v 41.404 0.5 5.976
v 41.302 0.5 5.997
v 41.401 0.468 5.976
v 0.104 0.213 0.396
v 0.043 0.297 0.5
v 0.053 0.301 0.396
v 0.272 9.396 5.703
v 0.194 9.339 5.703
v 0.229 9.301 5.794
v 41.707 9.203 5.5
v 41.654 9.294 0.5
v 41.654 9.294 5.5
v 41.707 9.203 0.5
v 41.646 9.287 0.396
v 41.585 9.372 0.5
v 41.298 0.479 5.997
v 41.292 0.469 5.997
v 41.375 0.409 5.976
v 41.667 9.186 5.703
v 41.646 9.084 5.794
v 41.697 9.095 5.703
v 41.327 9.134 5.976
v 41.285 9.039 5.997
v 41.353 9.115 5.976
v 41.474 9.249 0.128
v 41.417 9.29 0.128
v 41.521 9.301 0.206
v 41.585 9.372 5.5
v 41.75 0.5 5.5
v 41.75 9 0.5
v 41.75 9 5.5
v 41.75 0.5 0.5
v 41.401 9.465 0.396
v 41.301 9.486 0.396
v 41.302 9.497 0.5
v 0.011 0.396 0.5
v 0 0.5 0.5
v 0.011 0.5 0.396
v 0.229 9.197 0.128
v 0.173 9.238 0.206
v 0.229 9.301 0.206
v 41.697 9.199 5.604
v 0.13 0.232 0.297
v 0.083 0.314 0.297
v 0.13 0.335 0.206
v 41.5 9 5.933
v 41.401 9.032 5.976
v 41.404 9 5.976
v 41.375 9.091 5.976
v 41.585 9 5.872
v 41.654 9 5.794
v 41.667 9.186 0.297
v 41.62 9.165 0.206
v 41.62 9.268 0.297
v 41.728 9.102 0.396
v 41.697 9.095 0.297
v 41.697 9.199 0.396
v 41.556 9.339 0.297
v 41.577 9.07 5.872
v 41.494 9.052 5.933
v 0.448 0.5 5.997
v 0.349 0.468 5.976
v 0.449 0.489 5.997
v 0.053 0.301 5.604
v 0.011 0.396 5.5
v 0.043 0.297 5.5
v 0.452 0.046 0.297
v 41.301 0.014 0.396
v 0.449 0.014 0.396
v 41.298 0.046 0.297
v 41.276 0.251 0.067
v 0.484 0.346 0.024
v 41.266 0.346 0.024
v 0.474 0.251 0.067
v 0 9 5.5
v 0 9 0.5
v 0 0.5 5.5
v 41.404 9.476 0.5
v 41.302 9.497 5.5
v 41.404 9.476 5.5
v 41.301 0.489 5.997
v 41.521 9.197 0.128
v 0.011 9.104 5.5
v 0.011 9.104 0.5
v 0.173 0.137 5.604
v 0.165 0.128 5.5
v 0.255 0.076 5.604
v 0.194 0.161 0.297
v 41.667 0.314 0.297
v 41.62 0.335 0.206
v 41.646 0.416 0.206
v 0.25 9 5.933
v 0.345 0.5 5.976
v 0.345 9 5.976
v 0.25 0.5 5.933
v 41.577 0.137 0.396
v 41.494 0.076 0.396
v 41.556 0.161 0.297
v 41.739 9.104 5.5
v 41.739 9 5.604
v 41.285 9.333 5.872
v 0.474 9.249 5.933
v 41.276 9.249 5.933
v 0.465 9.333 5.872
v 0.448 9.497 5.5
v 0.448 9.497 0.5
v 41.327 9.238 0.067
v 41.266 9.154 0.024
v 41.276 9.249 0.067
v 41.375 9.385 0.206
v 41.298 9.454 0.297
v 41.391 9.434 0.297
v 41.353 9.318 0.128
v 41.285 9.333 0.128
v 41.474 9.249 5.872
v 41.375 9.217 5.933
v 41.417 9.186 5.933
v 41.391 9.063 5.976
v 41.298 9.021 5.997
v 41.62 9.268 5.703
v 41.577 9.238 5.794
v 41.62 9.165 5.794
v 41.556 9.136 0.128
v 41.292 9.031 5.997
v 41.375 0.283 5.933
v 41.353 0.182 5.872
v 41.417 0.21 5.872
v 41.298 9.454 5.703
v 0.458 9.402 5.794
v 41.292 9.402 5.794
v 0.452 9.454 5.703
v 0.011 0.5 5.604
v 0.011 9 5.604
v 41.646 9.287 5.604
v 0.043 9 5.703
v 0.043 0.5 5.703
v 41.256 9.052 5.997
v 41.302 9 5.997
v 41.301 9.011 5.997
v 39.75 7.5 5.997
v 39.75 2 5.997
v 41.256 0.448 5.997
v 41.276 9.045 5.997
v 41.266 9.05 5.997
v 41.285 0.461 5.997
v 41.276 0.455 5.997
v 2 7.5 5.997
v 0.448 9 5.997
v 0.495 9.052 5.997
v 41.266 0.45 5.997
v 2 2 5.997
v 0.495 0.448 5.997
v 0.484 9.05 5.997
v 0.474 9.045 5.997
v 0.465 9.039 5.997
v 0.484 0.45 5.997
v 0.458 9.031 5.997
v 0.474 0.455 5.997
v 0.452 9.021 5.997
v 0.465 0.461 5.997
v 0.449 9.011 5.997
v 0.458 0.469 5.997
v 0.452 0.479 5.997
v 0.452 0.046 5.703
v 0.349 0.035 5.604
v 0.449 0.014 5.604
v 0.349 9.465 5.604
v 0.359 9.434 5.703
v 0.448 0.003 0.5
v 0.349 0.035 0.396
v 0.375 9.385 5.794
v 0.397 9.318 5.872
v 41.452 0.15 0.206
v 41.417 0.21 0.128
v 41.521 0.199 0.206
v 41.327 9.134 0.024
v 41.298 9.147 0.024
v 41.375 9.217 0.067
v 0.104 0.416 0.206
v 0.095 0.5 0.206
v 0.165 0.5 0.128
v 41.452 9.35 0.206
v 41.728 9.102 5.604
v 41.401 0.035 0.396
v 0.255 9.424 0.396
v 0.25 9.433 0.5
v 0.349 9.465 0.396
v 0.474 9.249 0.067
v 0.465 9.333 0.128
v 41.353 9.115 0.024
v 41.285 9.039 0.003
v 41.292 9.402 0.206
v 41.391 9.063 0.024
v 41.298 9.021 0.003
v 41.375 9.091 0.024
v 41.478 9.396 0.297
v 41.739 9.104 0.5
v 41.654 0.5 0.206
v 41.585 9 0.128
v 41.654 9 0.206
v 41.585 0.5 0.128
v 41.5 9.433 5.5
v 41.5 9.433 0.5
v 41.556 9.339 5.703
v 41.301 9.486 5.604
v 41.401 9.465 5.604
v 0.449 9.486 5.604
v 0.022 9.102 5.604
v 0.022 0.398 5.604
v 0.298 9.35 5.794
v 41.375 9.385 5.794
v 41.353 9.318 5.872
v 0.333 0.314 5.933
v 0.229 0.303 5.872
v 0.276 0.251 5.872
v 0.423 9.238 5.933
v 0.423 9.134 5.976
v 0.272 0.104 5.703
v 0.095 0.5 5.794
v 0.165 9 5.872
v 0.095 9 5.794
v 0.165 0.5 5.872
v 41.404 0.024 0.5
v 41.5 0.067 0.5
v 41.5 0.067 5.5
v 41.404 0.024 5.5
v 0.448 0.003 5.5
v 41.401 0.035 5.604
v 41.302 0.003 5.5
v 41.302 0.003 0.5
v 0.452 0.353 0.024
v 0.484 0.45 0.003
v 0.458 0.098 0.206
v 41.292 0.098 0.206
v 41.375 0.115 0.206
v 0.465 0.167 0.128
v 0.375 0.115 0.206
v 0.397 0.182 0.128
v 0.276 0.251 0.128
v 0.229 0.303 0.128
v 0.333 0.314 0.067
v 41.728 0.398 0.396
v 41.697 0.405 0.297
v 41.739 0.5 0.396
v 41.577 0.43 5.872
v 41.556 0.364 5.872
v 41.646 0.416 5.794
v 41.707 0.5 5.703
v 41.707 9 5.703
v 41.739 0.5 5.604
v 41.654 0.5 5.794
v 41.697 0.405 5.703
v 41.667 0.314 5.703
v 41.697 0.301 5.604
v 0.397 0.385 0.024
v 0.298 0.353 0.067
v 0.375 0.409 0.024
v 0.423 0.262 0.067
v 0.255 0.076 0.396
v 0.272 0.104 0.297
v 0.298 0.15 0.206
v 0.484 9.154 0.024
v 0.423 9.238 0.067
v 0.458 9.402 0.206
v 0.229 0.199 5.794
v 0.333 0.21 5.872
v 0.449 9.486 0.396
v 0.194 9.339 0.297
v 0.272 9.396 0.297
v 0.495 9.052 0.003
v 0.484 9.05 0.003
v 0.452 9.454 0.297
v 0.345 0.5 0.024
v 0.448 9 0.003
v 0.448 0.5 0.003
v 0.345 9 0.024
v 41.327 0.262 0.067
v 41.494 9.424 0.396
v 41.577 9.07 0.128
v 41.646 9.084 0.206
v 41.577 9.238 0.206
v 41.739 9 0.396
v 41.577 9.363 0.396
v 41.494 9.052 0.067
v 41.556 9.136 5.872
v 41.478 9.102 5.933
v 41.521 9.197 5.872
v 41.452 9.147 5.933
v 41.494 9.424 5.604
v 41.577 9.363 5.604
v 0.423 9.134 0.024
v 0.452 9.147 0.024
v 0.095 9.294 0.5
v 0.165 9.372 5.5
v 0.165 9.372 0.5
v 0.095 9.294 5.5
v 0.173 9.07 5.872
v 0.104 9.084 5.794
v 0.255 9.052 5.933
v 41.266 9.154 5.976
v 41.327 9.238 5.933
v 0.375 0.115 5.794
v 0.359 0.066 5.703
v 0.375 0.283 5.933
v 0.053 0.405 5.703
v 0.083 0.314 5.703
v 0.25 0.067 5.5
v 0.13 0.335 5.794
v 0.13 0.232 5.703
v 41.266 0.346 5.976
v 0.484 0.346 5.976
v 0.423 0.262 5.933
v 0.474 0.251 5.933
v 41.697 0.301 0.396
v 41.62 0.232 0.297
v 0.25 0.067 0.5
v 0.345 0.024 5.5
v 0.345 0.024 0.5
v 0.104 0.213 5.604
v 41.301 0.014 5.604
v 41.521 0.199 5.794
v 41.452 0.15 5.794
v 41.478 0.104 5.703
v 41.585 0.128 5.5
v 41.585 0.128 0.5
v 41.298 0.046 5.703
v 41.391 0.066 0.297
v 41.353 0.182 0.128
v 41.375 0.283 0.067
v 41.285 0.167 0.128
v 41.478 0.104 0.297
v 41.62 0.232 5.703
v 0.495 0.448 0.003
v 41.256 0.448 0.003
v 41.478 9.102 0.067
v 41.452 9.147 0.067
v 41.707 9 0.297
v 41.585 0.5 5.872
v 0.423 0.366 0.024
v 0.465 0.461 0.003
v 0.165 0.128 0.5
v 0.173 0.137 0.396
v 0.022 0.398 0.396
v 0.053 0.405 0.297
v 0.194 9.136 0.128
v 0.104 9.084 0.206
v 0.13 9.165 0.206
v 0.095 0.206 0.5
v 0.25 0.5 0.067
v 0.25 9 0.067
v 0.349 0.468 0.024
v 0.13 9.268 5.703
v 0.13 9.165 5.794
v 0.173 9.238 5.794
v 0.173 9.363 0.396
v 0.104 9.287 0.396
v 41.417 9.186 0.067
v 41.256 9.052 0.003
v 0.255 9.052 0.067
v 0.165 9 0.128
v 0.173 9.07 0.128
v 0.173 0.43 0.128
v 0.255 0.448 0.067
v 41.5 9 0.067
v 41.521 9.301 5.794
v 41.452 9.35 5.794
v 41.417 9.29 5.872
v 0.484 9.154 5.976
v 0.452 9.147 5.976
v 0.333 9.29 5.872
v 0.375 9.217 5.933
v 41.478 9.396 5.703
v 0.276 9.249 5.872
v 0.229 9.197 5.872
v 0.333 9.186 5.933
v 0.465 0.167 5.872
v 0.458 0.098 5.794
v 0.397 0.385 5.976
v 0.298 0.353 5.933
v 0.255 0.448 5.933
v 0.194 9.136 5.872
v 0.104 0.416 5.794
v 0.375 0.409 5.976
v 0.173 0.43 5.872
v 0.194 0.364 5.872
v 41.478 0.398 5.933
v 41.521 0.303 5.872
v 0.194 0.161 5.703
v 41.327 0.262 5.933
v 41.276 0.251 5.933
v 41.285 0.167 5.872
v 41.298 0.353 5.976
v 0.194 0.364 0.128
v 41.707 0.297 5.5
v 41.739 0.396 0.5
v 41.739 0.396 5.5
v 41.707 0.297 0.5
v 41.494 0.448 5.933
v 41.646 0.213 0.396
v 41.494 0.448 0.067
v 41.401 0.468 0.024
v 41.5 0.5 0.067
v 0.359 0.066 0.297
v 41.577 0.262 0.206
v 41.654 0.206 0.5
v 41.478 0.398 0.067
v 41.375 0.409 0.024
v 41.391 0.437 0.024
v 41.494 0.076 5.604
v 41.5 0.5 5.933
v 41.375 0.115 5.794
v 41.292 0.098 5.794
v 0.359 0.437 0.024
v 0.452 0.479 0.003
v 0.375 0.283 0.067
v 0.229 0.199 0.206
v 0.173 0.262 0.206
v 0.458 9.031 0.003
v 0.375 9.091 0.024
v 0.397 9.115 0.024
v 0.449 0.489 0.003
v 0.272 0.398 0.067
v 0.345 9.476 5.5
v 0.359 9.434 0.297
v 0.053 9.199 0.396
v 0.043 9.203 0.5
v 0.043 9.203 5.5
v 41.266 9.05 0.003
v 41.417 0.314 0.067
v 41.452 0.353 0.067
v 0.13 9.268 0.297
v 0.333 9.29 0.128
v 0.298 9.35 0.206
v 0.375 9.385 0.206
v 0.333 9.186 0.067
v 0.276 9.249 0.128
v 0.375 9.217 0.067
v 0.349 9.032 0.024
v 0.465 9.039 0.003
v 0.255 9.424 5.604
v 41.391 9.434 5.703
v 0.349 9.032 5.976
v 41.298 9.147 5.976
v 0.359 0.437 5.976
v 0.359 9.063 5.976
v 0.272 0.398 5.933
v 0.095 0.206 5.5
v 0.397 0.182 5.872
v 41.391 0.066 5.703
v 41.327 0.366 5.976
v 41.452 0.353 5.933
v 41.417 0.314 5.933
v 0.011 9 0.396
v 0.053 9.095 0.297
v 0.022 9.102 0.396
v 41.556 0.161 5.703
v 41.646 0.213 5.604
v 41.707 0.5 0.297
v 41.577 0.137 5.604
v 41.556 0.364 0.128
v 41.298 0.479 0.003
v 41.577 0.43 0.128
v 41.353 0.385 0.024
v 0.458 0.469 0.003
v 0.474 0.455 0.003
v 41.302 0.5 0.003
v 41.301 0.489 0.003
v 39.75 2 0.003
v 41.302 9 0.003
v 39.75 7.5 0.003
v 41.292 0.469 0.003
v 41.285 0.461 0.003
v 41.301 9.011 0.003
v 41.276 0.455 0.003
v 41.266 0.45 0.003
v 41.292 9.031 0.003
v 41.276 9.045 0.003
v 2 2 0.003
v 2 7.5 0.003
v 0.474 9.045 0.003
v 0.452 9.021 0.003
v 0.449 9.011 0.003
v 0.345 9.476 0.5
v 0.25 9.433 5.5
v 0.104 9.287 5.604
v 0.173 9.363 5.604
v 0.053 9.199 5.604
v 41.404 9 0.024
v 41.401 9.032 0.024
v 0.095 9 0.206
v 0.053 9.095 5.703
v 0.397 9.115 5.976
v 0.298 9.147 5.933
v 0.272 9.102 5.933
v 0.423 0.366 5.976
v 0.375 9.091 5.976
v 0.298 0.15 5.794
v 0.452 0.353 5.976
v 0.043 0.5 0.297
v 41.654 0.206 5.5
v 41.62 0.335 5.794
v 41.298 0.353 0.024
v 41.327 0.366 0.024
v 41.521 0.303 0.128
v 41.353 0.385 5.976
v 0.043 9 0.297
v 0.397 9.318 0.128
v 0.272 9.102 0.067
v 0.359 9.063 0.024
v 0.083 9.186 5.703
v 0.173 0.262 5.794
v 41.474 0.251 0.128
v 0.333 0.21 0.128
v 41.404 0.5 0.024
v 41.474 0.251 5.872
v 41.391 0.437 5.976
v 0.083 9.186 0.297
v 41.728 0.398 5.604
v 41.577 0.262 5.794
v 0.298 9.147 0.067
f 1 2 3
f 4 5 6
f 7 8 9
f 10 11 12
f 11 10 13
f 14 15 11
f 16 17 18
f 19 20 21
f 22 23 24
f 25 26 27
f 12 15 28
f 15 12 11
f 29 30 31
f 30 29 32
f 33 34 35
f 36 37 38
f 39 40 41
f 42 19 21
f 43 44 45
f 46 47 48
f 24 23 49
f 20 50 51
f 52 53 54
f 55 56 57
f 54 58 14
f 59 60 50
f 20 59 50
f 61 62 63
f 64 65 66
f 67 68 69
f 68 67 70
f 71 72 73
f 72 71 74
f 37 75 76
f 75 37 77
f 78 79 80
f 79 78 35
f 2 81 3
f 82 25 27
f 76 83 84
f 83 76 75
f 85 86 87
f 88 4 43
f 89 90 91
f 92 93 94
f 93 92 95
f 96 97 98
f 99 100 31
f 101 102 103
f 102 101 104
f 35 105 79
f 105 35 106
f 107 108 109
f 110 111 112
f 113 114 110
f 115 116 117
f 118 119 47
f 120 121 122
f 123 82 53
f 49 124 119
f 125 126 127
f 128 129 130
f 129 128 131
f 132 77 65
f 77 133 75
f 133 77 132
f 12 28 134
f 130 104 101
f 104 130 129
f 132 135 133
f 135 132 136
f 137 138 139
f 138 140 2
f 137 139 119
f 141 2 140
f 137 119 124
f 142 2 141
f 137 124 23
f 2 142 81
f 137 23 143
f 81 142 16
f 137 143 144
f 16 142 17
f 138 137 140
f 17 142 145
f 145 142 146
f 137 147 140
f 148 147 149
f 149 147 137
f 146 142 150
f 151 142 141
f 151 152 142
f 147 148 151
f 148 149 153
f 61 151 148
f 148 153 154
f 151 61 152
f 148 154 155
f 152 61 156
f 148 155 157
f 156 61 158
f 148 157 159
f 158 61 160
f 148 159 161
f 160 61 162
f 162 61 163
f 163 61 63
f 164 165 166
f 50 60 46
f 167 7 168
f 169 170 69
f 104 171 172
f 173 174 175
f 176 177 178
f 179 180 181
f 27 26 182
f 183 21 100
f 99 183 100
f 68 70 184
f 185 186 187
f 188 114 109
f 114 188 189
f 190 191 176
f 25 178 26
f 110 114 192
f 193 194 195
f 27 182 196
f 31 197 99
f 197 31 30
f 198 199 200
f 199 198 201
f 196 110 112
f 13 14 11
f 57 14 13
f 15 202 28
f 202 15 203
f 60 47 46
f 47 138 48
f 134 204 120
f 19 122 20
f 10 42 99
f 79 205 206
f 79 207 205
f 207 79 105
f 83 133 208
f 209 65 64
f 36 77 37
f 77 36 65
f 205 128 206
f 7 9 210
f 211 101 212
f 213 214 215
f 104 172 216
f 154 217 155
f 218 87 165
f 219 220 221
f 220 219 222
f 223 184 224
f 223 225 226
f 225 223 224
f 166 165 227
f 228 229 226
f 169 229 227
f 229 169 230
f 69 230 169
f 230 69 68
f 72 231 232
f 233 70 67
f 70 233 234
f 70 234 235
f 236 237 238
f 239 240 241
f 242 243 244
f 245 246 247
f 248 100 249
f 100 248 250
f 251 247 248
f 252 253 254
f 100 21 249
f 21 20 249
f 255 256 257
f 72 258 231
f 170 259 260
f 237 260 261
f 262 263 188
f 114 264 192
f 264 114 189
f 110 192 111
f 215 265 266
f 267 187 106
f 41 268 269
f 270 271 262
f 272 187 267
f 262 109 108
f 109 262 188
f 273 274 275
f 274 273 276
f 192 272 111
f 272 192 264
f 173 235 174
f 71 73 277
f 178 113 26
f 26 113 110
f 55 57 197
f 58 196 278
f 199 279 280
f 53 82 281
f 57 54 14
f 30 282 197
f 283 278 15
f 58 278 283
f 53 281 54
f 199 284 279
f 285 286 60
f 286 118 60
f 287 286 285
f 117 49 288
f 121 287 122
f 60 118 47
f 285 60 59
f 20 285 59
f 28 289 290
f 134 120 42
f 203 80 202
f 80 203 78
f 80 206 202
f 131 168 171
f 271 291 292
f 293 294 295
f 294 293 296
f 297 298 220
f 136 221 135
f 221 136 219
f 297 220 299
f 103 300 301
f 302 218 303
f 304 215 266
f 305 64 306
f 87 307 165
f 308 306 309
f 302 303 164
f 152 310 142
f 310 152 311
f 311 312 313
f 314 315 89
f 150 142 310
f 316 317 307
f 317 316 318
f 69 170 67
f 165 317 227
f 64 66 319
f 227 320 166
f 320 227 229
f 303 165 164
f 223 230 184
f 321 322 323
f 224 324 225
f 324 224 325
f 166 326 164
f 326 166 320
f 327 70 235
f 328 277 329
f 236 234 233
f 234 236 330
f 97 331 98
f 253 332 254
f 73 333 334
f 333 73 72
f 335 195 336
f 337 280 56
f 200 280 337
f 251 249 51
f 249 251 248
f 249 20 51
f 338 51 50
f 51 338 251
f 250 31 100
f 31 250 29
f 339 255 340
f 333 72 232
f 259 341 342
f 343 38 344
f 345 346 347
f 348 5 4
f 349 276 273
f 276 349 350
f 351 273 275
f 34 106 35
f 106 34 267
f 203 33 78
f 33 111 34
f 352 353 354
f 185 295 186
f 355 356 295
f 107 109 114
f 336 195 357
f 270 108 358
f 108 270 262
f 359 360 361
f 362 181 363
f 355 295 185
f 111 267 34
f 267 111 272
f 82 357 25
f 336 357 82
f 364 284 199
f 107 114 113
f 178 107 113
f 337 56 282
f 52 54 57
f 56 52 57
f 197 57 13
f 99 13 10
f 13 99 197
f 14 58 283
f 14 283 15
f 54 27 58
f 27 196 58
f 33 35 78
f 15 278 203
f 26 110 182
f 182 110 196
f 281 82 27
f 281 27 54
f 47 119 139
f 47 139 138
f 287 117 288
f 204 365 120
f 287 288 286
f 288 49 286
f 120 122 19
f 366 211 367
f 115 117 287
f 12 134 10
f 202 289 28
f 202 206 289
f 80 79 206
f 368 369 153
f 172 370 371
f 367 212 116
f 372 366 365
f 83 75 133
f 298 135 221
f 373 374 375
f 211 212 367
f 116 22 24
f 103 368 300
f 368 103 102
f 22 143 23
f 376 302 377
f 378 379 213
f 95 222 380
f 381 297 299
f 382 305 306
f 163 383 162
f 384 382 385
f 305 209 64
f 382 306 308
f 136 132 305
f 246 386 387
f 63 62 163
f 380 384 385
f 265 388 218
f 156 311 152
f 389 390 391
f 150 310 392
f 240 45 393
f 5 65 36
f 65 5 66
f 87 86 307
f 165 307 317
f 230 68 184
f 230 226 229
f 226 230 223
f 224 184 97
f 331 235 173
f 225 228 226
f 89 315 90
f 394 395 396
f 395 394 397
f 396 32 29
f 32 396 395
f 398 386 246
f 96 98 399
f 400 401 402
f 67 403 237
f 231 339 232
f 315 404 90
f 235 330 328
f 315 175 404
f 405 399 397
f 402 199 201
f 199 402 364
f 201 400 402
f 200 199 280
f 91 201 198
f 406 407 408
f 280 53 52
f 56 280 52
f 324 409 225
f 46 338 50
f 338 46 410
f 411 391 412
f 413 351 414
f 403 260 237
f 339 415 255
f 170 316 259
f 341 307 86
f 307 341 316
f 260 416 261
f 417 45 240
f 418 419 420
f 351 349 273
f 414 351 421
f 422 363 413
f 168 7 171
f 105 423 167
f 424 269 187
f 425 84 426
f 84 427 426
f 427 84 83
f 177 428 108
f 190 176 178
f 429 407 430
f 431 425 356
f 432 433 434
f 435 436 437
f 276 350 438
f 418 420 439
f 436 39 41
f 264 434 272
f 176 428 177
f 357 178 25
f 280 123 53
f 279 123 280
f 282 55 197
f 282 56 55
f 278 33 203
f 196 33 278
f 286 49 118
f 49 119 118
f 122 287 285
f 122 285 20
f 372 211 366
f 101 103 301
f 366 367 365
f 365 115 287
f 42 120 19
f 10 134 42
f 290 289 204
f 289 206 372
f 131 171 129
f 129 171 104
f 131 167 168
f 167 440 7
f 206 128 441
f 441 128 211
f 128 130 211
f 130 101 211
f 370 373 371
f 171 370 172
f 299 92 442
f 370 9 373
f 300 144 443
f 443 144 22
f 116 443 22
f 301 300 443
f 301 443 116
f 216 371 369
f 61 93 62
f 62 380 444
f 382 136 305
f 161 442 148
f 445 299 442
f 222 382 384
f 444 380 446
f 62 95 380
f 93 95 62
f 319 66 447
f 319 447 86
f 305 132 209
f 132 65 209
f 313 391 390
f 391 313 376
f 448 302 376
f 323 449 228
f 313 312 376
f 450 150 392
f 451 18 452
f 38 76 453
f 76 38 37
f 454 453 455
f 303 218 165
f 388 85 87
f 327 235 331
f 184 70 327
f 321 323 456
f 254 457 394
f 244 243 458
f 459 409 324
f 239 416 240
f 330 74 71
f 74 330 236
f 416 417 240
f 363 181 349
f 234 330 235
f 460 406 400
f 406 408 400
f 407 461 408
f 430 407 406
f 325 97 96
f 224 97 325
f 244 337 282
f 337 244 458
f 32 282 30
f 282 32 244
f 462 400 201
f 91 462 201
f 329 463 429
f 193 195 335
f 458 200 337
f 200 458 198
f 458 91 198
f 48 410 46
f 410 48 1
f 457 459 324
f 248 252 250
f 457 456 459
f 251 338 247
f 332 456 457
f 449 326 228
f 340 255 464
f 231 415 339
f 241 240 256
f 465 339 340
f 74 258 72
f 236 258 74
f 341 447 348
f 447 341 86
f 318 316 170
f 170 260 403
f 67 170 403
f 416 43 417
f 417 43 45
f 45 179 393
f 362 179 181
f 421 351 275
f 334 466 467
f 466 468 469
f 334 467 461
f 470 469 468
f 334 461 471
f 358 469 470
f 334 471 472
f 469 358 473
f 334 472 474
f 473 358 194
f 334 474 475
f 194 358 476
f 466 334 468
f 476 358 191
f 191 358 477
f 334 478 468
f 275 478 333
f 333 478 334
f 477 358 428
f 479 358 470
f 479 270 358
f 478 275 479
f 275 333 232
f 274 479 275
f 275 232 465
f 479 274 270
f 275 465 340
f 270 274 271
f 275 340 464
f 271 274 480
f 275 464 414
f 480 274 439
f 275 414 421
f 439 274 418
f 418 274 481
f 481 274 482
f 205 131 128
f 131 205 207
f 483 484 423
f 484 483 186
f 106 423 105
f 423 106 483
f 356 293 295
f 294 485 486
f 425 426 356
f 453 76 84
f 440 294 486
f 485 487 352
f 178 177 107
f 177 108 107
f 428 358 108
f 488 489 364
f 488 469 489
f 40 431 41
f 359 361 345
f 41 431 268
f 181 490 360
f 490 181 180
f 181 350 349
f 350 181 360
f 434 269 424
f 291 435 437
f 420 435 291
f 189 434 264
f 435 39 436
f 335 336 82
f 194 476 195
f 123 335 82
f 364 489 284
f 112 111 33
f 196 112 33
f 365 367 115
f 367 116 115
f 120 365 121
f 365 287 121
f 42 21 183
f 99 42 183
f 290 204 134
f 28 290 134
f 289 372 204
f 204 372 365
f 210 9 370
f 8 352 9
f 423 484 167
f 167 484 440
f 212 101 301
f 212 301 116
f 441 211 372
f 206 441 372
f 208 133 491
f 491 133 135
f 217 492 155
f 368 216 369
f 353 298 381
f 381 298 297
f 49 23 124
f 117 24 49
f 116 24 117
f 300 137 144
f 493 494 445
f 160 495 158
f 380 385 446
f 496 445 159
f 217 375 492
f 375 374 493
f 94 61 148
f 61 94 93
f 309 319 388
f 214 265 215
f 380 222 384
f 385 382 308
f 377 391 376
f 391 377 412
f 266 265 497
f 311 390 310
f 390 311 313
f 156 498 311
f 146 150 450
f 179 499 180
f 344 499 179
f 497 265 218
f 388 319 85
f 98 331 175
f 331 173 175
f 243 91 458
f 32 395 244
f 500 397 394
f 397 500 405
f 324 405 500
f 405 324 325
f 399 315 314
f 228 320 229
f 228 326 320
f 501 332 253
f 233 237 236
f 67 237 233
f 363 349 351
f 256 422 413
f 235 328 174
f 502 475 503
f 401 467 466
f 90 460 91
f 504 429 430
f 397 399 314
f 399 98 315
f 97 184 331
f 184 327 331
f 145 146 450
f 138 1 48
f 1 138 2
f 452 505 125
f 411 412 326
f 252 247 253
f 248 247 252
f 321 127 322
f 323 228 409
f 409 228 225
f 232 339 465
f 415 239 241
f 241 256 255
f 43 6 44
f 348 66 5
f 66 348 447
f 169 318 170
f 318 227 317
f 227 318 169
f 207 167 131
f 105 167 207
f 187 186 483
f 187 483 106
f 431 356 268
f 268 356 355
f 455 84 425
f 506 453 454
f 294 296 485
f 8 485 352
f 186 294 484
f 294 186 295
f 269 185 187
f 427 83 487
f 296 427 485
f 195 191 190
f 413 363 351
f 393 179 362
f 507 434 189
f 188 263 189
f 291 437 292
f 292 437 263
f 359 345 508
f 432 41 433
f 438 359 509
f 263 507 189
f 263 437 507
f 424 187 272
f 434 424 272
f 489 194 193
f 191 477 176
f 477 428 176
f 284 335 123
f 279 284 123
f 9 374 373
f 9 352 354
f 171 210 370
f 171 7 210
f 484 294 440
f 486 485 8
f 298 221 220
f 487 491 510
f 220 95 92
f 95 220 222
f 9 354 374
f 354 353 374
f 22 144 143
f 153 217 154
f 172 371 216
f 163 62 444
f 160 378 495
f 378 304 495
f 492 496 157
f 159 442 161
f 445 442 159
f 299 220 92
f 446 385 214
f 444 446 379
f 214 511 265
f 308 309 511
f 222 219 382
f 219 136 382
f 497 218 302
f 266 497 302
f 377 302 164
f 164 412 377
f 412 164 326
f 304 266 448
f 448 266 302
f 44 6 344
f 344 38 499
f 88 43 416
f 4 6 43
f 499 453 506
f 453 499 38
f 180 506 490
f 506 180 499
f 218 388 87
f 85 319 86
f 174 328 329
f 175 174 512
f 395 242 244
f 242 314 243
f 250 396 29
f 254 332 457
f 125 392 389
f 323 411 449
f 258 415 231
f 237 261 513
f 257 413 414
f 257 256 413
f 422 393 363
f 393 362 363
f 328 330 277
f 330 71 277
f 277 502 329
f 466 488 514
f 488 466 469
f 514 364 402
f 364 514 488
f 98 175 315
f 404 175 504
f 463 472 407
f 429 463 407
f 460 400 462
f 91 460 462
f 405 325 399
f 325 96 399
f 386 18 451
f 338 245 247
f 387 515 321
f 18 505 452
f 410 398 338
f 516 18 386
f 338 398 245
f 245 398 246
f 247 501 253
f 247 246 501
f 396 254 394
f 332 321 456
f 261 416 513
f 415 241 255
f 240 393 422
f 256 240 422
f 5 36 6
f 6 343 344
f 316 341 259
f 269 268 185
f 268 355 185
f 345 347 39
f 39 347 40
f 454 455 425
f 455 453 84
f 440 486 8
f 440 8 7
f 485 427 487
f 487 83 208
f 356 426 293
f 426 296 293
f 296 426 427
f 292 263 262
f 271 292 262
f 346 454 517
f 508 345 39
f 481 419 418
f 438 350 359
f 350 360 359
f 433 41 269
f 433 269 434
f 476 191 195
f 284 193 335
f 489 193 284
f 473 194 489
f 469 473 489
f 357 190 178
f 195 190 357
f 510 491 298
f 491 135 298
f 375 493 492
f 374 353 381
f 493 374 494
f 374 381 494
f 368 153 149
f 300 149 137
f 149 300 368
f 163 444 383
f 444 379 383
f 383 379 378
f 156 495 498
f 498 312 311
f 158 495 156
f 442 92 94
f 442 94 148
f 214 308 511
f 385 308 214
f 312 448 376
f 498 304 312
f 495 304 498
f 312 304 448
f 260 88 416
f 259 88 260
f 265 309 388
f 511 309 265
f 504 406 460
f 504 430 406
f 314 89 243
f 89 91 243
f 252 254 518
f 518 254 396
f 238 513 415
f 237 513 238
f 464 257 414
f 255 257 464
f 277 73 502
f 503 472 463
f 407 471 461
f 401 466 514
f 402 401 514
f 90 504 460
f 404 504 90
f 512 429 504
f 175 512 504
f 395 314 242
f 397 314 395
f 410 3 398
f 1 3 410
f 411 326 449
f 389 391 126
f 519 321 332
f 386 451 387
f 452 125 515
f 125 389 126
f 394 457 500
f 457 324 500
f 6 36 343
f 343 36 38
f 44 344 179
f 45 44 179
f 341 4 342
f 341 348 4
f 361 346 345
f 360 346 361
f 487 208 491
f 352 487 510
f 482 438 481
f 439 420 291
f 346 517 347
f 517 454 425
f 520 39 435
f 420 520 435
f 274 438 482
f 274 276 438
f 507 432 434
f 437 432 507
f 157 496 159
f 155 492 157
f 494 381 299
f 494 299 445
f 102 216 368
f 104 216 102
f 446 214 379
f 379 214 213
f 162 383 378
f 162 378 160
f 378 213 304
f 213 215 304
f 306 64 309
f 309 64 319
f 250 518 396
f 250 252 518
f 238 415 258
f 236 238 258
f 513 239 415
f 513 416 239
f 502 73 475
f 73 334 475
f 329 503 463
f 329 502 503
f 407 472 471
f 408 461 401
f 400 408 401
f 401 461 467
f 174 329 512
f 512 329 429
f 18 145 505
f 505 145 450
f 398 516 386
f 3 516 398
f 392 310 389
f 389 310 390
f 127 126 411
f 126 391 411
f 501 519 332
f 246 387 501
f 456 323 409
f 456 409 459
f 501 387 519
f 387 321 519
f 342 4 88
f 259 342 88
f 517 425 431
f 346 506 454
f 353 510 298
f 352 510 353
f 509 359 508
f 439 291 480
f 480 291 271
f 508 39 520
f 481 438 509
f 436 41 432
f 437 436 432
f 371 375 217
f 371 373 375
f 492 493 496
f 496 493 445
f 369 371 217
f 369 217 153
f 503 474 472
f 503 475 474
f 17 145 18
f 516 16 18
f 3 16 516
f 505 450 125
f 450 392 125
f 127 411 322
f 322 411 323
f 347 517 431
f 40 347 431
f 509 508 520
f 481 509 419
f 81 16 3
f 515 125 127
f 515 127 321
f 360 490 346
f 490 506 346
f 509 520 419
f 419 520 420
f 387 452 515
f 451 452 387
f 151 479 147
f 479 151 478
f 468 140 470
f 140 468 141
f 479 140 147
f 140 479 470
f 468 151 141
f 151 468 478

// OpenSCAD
// file: roundedcube.scad
// Higher definition curves
$fs = 0.01;

module roundedcube(size = [ 1, 1, 1 ], center = false, radius = 0.5,
                   apply_to = "all") {
  // If single value, convert to [x, y, z] vector
  size = (size[0] == undef) ? [ size, size, size ] : size;

  translate_min = radius;
  translate_xmax = size[0] - radius;
  translate_ymax = size[1] - radius;
  translate_zmax = size[2] - radius;

  diameter = radius * 2;

  module build_point(type = "sphere", rotate = [ 0, 0, 0 ]) {
    if (type == "sphere") {
      sphere(r = radius);
    } else if (type == "cylinder") {
      rotate(a = rotate) cylinder(h = diameter, r = radius, center = true);
    }
  }

  obj_translate = (center == false)
                      ? [ 0, 0, 0 ]
                      : [ -(size[0] / 2), -(size[1] / 2), -(size[2] / 2) ];

  translate(v = obj_translate) {
    hull() {
      for (translate_x = [ translate_min, translate_xmax ]) {
        x_at = (translate_x == translate_min) ? "min" : "max";
        for (translate_y = [ translate_min, translate_ymax ]) {
          y_at = (translate_y == translate_min) ? "min" : "max";
          for (translate_z = [ translate_min, translate_zmax ]) {
            z_at = (translate_z == translate_min) ? "min" : "max";

            translate(v =
                          [
                            translate_x, translate_y,
                            translate_z
                          ]) if ((apply_to == "all") ||
                                 (apply_to == "xmin" && x_at == "min") ||
                                 (apply_to == "xmax" && x_at == "max") ||
                                 (apply_to == "ymin" && y_at == "min") ||
                                 (apply_to == "ymax" && y_at == "max") ||
                                 (apply_to == "zmin" && z_at == "min") ||
                                 (apply_to == "zmax" && z_at == "max")) {
              build_point("sphere");
            }
            else {
              rotate =
                  (apply_to == "xmin" || apply_to == "xmax" || apply_to == "x")
                      ? [ 0, 90, 0 ]
                      : ((apply_to == "ymin" || apply_to == "ymax" ||
                          apply_to == "y")
                             ? [ 90, 90, 0 ]
                             : [ 0, 0, 0 ]);
              build_point("cylinder", rotate);
            }
          }
        }
      }
    }
  }
}
// main file
outerWidth = 6;
beltHeight = 37.75;
beltThickness = 2.75;
outerThickness = 2;
dividerThickness = /* 1.2 */ 0;

use <roundedcube.scad>;

module beltHole(m=1) {
  cube([
    beltHeight,
    beltThickness*m,
    outerWidth+2
  ]);
}

difference() {
  roundedcube([
    beltHeight + outerThickness*2,
    beltThickness*2 + outerThickness*2 + dividerThickness,
    outerWidth
  ]);
  
  if (dividerThickness > 0) {
    translate([outerThickness, outerThickness, -1])
    beltHole();
    
    translate([
      outerThickness,
      outerThickness + beltThickness + dividerThickness,
      -1
    ]) beltHole();
  } else {
    translate([outerThickness, outerThickness, -1])
    beltHole(2);
  }
}
